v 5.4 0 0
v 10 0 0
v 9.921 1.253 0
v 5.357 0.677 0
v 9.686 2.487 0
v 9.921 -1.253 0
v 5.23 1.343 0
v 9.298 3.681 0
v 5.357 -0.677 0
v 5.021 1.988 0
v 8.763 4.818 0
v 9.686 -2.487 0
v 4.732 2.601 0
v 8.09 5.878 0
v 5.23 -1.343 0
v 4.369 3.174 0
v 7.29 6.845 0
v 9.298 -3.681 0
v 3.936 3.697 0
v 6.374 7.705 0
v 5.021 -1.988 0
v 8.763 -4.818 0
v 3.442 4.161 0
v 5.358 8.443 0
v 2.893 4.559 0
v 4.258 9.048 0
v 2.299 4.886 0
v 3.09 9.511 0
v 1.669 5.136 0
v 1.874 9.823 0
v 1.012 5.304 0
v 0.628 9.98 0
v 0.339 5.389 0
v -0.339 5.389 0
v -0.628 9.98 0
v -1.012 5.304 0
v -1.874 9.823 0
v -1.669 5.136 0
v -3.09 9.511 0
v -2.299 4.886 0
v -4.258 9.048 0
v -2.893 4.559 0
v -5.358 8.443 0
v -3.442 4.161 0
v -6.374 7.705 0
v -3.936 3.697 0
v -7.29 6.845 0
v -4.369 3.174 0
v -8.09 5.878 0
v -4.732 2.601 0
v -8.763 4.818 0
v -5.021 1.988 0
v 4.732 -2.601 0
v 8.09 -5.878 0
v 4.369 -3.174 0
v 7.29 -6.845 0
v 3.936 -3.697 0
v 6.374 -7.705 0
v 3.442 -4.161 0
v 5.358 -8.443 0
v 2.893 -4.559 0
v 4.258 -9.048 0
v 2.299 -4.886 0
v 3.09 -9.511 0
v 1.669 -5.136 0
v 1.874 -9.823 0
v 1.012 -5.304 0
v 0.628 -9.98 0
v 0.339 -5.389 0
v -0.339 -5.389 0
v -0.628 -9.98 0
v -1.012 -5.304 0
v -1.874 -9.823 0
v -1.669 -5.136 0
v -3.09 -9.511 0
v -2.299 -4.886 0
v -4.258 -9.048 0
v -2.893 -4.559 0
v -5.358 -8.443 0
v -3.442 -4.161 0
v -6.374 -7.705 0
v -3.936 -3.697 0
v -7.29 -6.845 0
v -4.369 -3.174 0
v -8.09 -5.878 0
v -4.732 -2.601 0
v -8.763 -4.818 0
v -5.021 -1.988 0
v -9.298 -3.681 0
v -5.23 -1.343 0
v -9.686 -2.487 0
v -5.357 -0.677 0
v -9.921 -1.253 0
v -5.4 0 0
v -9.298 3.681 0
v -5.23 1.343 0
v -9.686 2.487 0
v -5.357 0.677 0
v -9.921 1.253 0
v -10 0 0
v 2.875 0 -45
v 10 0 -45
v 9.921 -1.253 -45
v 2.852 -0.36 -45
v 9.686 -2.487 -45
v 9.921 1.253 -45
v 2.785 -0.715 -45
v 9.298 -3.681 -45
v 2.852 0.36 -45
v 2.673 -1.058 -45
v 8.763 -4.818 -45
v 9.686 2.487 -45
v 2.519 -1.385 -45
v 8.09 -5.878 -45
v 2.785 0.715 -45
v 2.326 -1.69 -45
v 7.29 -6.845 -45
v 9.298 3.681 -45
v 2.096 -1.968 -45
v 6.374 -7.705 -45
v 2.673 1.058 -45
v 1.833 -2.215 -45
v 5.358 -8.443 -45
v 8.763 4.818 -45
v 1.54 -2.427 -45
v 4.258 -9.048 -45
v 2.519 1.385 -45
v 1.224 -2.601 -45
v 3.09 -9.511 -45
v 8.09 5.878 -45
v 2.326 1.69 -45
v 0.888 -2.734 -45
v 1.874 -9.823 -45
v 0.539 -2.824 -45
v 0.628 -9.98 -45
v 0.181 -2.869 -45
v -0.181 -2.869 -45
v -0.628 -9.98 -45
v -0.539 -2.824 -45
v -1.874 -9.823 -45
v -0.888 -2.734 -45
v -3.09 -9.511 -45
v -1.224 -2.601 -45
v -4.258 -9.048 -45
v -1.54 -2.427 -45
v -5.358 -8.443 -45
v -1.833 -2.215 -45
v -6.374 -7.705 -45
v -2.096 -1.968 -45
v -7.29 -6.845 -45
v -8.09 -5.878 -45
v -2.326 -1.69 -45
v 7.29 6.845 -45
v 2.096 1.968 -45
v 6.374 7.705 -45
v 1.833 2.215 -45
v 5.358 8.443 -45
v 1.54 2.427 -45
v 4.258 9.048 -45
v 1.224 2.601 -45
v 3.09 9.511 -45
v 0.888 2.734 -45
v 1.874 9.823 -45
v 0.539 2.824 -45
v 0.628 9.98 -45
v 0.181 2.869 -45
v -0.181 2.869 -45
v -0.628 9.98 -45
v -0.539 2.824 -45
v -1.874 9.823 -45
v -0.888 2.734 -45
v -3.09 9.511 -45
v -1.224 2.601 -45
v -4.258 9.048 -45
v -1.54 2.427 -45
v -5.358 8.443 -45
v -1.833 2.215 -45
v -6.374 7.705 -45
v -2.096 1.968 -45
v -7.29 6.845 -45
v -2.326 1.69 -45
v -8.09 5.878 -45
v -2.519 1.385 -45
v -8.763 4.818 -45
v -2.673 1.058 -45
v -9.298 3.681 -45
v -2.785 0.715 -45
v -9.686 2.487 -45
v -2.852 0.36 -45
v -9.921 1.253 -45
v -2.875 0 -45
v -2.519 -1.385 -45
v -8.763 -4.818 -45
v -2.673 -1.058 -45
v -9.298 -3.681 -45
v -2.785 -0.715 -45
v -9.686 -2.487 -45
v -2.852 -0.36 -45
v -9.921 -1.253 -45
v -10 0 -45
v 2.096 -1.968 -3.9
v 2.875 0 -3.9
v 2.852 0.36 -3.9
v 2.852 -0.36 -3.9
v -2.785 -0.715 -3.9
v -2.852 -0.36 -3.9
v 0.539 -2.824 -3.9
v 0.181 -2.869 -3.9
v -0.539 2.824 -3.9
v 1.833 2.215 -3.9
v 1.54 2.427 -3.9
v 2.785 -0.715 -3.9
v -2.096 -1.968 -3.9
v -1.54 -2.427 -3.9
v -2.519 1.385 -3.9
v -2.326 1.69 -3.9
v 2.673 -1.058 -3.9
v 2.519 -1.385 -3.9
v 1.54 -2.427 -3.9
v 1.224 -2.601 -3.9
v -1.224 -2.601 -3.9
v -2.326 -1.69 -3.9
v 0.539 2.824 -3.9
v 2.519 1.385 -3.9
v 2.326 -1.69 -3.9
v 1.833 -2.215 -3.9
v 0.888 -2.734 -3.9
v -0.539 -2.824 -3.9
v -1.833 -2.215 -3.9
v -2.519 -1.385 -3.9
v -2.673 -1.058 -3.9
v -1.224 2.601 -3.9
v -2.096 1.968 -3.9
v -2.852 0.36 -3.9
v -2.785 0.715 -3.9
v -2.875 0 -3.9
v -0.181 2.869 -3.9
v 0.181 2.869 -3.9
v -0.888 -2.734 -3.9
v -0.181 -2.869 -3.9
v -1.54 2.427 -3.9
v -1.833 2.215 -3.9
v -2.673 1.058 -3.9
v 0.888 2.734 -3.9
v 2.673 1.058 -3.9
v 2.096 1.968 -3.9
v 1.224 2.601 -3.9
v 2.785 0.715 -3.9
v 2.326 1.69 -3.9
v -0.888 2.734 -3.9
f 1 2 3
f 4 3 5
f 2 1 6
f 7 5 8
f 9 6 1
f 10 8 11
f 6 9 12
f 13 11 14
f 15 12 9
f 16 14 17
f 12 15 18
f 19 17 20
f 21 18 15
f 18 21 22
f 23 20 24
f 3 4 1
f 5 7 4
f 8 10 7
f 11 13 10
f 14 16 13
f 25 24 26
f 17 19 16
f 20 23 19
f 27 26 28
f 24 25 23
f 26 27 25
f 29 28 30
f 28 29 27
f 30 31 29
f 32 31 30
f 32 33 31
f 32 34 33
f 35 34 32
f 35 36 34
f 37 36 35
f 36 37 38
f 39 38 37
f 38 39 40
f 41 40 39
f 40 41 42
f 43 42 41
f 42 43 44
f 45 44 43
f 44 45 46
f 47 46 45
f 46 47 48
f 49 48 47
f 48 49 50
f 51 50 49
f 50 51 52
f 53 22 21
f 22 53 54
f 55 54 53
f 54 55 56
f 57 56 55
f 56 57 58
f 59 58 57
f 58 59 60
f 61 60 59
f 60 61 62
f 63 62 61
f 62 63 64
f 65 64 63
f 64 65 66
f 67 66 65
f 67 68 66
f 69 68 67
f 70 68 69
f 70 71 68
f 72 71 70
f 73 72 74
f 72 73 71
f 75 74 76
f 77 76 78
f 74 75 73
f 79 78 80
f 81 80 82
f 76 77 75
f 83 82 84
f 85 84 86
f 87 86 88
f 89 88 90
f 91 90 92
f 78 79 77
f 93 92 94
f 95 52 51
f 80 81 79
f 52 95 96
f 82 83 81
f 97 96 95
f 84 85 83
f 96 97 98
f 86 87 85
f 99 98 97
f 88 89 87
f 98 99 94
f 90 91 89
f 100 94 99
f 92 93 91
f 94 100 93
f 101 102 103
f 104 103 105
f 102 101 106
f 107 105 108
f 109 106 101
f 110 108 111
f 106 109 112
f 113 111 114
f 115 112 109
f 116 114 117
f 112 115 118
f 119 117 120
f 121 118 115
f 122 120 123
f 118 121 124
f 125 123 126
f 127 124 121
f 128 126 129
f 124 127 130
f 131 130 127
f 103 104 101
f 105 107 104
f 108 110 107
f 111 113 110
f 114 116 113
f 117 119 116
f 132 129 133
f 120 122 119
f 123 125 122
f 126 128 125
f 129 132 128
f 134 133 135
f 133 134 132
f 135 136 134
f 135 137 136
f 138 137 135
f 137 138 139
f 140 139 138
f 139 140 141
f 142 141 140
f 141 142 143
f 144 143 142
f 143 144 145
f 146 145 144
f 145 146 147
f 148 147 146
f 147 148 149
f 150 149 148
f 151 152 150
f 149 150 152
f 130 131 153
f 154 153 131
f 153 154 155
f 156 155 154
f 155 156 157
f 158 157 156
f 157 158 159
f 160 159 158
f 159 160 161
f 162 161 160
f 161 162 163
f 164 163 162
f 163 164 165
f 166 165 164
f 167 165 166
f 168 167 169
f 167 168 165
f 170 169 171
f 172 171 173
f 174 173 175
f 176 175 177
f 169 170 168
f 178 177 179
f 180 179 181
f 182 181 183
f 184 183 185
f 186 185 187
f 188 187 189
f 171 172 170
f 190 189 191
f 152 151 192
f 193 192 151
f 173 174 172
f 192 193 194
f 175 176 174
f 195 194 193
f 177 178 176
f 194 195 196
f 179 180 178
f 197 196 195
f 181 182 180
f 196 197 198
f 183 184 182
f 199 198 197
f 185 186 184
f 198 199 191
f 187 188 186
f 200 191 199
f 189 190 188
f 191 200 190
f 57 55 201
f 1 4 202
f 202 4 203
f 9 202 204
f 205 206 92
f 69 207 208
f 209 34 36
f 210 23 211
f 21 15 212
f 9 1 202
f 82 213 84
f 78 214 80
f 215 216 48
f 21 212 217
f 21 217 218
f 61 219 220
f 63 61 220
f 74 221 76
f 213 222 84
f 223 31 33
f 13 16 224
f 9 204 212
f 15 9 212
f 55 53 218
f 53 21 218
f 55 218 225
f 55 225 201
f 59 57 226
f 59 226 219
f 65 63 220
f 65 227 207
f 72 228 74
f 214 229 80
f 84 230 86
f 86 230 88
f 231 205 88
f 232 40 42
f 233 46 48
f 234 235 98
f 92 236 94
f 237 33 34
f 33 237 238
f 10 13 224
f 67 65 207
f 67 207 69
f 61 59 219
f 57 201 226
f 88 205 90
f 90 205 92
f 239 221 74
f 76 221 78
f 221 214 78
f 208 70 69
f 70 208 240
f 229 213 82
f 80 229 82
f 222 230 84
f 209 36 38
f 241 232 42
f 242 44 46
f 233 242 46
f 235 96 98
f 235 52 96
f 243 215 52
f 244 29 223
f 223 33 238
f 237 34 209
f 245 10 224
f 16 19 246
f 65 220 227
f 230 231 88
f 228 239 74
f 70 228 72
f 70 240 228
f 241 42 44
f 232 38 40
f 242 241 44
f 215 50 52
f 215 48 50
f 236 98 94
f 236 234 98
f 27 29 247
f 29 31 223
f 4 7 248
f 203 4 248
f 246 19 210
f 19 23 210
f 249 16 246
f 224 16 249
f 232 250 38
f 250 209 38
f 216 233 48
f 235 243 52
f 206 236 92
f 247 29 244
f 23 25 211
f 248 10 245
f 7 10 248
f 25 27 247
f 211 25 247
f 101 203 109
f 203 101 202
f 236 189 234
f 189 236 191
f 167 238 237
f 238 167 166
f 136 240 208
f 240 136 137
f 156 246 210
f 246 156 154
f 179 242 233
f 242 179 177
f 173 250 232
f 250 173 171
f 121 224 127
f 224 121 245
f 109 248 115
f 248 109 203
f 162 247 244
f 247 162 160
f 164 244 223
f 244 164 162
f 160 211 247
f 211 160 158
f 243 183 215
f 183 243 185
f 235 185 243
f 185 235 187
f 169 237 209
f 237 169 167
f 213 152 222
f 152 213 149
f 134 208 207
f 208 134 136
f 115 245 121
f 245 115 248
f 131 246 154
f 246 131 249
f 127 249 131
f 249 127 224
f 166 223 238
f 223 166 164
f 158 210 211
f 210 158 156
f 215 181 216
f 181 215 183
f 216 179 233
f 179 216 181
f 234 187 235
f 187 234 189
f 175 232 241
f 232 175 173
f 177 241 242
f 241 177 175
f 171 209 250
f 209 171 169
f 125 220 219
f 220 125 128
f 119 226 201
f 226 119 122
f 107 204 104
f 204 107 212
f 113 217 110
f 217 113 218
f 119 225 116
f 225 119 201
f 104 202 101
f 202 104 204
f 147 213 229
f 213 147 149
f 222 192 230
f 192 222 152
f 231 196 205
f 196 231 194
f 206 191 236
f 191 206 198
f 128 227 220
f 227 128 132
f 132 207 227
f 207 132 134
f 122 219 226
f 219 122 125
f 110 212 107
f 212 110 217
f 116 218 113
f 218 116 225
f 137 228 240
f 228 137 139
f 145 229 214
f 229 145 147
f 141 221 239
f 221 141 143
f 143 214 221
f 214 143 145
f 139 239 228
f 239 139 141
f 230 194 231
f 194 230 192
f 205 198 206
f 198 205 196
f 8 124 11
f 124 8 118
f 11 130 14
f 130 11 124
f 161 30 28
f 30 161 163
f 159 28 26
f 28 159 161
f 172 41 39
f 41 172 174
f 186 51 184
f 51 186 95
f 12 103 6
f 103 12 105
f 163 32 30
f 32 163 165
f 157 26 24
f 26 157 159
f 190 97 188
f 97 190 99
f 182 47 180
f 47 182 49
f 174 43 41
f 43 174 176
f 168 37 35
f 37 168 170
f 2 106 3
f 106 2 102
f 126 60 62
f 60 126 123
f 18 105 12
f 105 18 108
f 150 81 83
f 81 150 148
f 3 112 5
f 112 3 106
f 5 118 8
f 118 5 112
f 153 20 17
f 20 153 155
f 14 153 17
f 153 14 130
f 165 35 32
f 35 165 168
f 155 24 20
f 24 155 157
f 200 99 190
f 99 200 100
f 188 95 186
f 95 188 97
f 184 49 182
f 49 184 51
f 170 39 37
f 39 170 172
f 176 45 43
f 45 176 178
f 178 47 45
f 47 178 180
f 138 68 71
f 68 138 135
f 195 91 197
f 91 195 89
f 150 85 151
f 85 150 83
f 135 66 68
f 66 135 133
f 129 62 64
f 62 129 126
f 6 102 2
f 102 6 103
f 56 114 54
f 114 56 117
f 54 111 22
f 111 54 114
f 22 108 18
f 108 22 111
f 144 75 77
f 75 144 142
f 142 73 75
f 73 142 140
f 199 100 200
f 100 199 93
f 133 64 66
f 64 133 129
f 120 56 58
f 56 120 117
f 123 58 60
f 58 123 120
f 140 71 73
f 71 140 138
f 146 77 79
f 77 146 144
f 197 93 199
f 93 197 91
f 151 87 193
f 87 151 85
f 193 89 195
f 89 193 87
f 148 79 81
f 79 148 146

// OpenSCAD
$fn = 50;


difference() {
	union() {
		translate(v = [0, 0, -45.0000000000]) {
			cylinder(h = 45, r = 10.0000000000);
		}
	}
	union() {
		translate(v = [0, 0, 0]) {
			rotate(a = [0, 0, 0]) {
				difference() {
					union() {
						#translate(v = [0, 0, -45.0000000000]) {
							cylinder(h = 45, r = 2.6000000000);
						}
						#translate(v = [0, 0, -3.9000000000]) {
							cylinder(h = 3.9000000000, r1 = 2.8750000000, r2 = 5.4000000000);
						}
						#translate(v = [0, 0, -45.0000000000]) {
							cylinder(h = 45, r = 2.8750000000);
						}
						#translate(v = [0, 0, -45.0000000000]) {
							cylinder(h = 45, r = 2.6000000000);
						}
					}
					union();
				}
			}
		}
	}
}
